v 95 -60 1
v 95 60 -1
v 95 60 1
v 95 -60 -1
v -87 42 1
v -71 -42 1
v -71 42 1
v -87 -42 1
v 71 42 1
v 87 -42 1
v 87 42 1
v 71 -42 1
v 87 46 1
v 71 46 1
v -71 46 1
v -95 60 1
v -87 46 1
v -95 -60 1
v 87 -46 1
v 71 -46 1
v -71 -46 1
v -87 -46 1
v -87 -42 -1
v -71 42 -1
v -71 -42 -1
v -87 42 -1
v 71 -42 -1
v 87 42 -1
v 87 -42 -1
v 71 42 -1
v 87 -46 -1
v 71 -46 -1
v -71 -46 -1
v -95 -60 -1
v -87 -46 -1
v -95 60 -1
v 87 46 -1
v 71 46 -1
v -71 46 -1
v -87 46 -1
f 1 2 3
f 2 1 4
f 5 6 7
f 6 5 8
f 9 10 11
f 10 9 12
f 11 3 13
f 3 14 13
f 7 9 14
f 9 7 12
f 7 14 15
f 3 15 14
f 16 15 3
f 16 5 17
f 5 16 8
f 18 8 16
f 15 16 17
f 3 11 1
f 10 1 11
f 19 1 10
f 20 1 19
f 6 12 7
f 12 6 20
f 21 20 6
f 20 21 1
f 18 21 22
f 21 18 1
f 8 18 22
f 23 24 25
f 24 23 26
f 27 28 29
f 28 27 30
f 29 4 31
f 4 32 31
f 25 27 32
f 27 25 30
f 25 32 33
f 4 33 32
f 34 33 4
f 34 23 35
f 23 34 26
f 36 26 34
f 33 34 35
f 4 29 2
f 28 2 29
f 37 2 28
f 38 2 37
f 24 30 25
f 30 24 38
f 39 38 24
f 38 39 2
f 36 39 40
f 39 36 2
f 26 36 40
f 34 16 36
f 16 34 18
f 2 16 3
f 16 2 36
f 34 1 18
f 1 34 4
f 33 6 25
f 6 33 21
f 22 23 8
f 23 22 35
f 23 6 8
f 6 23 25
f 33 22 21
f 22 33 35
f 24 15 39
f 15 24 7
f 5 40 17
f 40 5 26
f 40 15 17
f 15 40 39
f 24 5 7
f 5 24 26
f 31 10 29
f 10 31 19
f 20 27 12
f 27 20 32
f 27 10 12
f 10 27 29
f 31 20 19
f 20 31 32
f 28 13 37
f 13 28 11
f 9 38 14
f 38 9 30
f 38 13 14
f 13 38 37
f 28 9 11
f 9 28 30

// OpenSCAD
// ========================================
// a 190 x 120 x 2 mm plate with four 16 x 4 mm slots
// NeuroCAD canonical IR; dimensions are millimetres
// ========================================
$fn = 48;

difference() {
  cube(size=[190, 120, 2], center=true);
  translate([-79, -44, 0]) {
    cube(size=[16, 4, 4], center=true);
  }
  translate([-79, 44, 0]) {
    cube(size=[16, 4, 4], center=true);
  }
  translate([79, -44, 0]) {
    cube(size=[16, 4, 4], center=true);
  }
  translate([79, 44, 0]) {
    cube(size=[16, 4, 4], center=true);
  }
}
